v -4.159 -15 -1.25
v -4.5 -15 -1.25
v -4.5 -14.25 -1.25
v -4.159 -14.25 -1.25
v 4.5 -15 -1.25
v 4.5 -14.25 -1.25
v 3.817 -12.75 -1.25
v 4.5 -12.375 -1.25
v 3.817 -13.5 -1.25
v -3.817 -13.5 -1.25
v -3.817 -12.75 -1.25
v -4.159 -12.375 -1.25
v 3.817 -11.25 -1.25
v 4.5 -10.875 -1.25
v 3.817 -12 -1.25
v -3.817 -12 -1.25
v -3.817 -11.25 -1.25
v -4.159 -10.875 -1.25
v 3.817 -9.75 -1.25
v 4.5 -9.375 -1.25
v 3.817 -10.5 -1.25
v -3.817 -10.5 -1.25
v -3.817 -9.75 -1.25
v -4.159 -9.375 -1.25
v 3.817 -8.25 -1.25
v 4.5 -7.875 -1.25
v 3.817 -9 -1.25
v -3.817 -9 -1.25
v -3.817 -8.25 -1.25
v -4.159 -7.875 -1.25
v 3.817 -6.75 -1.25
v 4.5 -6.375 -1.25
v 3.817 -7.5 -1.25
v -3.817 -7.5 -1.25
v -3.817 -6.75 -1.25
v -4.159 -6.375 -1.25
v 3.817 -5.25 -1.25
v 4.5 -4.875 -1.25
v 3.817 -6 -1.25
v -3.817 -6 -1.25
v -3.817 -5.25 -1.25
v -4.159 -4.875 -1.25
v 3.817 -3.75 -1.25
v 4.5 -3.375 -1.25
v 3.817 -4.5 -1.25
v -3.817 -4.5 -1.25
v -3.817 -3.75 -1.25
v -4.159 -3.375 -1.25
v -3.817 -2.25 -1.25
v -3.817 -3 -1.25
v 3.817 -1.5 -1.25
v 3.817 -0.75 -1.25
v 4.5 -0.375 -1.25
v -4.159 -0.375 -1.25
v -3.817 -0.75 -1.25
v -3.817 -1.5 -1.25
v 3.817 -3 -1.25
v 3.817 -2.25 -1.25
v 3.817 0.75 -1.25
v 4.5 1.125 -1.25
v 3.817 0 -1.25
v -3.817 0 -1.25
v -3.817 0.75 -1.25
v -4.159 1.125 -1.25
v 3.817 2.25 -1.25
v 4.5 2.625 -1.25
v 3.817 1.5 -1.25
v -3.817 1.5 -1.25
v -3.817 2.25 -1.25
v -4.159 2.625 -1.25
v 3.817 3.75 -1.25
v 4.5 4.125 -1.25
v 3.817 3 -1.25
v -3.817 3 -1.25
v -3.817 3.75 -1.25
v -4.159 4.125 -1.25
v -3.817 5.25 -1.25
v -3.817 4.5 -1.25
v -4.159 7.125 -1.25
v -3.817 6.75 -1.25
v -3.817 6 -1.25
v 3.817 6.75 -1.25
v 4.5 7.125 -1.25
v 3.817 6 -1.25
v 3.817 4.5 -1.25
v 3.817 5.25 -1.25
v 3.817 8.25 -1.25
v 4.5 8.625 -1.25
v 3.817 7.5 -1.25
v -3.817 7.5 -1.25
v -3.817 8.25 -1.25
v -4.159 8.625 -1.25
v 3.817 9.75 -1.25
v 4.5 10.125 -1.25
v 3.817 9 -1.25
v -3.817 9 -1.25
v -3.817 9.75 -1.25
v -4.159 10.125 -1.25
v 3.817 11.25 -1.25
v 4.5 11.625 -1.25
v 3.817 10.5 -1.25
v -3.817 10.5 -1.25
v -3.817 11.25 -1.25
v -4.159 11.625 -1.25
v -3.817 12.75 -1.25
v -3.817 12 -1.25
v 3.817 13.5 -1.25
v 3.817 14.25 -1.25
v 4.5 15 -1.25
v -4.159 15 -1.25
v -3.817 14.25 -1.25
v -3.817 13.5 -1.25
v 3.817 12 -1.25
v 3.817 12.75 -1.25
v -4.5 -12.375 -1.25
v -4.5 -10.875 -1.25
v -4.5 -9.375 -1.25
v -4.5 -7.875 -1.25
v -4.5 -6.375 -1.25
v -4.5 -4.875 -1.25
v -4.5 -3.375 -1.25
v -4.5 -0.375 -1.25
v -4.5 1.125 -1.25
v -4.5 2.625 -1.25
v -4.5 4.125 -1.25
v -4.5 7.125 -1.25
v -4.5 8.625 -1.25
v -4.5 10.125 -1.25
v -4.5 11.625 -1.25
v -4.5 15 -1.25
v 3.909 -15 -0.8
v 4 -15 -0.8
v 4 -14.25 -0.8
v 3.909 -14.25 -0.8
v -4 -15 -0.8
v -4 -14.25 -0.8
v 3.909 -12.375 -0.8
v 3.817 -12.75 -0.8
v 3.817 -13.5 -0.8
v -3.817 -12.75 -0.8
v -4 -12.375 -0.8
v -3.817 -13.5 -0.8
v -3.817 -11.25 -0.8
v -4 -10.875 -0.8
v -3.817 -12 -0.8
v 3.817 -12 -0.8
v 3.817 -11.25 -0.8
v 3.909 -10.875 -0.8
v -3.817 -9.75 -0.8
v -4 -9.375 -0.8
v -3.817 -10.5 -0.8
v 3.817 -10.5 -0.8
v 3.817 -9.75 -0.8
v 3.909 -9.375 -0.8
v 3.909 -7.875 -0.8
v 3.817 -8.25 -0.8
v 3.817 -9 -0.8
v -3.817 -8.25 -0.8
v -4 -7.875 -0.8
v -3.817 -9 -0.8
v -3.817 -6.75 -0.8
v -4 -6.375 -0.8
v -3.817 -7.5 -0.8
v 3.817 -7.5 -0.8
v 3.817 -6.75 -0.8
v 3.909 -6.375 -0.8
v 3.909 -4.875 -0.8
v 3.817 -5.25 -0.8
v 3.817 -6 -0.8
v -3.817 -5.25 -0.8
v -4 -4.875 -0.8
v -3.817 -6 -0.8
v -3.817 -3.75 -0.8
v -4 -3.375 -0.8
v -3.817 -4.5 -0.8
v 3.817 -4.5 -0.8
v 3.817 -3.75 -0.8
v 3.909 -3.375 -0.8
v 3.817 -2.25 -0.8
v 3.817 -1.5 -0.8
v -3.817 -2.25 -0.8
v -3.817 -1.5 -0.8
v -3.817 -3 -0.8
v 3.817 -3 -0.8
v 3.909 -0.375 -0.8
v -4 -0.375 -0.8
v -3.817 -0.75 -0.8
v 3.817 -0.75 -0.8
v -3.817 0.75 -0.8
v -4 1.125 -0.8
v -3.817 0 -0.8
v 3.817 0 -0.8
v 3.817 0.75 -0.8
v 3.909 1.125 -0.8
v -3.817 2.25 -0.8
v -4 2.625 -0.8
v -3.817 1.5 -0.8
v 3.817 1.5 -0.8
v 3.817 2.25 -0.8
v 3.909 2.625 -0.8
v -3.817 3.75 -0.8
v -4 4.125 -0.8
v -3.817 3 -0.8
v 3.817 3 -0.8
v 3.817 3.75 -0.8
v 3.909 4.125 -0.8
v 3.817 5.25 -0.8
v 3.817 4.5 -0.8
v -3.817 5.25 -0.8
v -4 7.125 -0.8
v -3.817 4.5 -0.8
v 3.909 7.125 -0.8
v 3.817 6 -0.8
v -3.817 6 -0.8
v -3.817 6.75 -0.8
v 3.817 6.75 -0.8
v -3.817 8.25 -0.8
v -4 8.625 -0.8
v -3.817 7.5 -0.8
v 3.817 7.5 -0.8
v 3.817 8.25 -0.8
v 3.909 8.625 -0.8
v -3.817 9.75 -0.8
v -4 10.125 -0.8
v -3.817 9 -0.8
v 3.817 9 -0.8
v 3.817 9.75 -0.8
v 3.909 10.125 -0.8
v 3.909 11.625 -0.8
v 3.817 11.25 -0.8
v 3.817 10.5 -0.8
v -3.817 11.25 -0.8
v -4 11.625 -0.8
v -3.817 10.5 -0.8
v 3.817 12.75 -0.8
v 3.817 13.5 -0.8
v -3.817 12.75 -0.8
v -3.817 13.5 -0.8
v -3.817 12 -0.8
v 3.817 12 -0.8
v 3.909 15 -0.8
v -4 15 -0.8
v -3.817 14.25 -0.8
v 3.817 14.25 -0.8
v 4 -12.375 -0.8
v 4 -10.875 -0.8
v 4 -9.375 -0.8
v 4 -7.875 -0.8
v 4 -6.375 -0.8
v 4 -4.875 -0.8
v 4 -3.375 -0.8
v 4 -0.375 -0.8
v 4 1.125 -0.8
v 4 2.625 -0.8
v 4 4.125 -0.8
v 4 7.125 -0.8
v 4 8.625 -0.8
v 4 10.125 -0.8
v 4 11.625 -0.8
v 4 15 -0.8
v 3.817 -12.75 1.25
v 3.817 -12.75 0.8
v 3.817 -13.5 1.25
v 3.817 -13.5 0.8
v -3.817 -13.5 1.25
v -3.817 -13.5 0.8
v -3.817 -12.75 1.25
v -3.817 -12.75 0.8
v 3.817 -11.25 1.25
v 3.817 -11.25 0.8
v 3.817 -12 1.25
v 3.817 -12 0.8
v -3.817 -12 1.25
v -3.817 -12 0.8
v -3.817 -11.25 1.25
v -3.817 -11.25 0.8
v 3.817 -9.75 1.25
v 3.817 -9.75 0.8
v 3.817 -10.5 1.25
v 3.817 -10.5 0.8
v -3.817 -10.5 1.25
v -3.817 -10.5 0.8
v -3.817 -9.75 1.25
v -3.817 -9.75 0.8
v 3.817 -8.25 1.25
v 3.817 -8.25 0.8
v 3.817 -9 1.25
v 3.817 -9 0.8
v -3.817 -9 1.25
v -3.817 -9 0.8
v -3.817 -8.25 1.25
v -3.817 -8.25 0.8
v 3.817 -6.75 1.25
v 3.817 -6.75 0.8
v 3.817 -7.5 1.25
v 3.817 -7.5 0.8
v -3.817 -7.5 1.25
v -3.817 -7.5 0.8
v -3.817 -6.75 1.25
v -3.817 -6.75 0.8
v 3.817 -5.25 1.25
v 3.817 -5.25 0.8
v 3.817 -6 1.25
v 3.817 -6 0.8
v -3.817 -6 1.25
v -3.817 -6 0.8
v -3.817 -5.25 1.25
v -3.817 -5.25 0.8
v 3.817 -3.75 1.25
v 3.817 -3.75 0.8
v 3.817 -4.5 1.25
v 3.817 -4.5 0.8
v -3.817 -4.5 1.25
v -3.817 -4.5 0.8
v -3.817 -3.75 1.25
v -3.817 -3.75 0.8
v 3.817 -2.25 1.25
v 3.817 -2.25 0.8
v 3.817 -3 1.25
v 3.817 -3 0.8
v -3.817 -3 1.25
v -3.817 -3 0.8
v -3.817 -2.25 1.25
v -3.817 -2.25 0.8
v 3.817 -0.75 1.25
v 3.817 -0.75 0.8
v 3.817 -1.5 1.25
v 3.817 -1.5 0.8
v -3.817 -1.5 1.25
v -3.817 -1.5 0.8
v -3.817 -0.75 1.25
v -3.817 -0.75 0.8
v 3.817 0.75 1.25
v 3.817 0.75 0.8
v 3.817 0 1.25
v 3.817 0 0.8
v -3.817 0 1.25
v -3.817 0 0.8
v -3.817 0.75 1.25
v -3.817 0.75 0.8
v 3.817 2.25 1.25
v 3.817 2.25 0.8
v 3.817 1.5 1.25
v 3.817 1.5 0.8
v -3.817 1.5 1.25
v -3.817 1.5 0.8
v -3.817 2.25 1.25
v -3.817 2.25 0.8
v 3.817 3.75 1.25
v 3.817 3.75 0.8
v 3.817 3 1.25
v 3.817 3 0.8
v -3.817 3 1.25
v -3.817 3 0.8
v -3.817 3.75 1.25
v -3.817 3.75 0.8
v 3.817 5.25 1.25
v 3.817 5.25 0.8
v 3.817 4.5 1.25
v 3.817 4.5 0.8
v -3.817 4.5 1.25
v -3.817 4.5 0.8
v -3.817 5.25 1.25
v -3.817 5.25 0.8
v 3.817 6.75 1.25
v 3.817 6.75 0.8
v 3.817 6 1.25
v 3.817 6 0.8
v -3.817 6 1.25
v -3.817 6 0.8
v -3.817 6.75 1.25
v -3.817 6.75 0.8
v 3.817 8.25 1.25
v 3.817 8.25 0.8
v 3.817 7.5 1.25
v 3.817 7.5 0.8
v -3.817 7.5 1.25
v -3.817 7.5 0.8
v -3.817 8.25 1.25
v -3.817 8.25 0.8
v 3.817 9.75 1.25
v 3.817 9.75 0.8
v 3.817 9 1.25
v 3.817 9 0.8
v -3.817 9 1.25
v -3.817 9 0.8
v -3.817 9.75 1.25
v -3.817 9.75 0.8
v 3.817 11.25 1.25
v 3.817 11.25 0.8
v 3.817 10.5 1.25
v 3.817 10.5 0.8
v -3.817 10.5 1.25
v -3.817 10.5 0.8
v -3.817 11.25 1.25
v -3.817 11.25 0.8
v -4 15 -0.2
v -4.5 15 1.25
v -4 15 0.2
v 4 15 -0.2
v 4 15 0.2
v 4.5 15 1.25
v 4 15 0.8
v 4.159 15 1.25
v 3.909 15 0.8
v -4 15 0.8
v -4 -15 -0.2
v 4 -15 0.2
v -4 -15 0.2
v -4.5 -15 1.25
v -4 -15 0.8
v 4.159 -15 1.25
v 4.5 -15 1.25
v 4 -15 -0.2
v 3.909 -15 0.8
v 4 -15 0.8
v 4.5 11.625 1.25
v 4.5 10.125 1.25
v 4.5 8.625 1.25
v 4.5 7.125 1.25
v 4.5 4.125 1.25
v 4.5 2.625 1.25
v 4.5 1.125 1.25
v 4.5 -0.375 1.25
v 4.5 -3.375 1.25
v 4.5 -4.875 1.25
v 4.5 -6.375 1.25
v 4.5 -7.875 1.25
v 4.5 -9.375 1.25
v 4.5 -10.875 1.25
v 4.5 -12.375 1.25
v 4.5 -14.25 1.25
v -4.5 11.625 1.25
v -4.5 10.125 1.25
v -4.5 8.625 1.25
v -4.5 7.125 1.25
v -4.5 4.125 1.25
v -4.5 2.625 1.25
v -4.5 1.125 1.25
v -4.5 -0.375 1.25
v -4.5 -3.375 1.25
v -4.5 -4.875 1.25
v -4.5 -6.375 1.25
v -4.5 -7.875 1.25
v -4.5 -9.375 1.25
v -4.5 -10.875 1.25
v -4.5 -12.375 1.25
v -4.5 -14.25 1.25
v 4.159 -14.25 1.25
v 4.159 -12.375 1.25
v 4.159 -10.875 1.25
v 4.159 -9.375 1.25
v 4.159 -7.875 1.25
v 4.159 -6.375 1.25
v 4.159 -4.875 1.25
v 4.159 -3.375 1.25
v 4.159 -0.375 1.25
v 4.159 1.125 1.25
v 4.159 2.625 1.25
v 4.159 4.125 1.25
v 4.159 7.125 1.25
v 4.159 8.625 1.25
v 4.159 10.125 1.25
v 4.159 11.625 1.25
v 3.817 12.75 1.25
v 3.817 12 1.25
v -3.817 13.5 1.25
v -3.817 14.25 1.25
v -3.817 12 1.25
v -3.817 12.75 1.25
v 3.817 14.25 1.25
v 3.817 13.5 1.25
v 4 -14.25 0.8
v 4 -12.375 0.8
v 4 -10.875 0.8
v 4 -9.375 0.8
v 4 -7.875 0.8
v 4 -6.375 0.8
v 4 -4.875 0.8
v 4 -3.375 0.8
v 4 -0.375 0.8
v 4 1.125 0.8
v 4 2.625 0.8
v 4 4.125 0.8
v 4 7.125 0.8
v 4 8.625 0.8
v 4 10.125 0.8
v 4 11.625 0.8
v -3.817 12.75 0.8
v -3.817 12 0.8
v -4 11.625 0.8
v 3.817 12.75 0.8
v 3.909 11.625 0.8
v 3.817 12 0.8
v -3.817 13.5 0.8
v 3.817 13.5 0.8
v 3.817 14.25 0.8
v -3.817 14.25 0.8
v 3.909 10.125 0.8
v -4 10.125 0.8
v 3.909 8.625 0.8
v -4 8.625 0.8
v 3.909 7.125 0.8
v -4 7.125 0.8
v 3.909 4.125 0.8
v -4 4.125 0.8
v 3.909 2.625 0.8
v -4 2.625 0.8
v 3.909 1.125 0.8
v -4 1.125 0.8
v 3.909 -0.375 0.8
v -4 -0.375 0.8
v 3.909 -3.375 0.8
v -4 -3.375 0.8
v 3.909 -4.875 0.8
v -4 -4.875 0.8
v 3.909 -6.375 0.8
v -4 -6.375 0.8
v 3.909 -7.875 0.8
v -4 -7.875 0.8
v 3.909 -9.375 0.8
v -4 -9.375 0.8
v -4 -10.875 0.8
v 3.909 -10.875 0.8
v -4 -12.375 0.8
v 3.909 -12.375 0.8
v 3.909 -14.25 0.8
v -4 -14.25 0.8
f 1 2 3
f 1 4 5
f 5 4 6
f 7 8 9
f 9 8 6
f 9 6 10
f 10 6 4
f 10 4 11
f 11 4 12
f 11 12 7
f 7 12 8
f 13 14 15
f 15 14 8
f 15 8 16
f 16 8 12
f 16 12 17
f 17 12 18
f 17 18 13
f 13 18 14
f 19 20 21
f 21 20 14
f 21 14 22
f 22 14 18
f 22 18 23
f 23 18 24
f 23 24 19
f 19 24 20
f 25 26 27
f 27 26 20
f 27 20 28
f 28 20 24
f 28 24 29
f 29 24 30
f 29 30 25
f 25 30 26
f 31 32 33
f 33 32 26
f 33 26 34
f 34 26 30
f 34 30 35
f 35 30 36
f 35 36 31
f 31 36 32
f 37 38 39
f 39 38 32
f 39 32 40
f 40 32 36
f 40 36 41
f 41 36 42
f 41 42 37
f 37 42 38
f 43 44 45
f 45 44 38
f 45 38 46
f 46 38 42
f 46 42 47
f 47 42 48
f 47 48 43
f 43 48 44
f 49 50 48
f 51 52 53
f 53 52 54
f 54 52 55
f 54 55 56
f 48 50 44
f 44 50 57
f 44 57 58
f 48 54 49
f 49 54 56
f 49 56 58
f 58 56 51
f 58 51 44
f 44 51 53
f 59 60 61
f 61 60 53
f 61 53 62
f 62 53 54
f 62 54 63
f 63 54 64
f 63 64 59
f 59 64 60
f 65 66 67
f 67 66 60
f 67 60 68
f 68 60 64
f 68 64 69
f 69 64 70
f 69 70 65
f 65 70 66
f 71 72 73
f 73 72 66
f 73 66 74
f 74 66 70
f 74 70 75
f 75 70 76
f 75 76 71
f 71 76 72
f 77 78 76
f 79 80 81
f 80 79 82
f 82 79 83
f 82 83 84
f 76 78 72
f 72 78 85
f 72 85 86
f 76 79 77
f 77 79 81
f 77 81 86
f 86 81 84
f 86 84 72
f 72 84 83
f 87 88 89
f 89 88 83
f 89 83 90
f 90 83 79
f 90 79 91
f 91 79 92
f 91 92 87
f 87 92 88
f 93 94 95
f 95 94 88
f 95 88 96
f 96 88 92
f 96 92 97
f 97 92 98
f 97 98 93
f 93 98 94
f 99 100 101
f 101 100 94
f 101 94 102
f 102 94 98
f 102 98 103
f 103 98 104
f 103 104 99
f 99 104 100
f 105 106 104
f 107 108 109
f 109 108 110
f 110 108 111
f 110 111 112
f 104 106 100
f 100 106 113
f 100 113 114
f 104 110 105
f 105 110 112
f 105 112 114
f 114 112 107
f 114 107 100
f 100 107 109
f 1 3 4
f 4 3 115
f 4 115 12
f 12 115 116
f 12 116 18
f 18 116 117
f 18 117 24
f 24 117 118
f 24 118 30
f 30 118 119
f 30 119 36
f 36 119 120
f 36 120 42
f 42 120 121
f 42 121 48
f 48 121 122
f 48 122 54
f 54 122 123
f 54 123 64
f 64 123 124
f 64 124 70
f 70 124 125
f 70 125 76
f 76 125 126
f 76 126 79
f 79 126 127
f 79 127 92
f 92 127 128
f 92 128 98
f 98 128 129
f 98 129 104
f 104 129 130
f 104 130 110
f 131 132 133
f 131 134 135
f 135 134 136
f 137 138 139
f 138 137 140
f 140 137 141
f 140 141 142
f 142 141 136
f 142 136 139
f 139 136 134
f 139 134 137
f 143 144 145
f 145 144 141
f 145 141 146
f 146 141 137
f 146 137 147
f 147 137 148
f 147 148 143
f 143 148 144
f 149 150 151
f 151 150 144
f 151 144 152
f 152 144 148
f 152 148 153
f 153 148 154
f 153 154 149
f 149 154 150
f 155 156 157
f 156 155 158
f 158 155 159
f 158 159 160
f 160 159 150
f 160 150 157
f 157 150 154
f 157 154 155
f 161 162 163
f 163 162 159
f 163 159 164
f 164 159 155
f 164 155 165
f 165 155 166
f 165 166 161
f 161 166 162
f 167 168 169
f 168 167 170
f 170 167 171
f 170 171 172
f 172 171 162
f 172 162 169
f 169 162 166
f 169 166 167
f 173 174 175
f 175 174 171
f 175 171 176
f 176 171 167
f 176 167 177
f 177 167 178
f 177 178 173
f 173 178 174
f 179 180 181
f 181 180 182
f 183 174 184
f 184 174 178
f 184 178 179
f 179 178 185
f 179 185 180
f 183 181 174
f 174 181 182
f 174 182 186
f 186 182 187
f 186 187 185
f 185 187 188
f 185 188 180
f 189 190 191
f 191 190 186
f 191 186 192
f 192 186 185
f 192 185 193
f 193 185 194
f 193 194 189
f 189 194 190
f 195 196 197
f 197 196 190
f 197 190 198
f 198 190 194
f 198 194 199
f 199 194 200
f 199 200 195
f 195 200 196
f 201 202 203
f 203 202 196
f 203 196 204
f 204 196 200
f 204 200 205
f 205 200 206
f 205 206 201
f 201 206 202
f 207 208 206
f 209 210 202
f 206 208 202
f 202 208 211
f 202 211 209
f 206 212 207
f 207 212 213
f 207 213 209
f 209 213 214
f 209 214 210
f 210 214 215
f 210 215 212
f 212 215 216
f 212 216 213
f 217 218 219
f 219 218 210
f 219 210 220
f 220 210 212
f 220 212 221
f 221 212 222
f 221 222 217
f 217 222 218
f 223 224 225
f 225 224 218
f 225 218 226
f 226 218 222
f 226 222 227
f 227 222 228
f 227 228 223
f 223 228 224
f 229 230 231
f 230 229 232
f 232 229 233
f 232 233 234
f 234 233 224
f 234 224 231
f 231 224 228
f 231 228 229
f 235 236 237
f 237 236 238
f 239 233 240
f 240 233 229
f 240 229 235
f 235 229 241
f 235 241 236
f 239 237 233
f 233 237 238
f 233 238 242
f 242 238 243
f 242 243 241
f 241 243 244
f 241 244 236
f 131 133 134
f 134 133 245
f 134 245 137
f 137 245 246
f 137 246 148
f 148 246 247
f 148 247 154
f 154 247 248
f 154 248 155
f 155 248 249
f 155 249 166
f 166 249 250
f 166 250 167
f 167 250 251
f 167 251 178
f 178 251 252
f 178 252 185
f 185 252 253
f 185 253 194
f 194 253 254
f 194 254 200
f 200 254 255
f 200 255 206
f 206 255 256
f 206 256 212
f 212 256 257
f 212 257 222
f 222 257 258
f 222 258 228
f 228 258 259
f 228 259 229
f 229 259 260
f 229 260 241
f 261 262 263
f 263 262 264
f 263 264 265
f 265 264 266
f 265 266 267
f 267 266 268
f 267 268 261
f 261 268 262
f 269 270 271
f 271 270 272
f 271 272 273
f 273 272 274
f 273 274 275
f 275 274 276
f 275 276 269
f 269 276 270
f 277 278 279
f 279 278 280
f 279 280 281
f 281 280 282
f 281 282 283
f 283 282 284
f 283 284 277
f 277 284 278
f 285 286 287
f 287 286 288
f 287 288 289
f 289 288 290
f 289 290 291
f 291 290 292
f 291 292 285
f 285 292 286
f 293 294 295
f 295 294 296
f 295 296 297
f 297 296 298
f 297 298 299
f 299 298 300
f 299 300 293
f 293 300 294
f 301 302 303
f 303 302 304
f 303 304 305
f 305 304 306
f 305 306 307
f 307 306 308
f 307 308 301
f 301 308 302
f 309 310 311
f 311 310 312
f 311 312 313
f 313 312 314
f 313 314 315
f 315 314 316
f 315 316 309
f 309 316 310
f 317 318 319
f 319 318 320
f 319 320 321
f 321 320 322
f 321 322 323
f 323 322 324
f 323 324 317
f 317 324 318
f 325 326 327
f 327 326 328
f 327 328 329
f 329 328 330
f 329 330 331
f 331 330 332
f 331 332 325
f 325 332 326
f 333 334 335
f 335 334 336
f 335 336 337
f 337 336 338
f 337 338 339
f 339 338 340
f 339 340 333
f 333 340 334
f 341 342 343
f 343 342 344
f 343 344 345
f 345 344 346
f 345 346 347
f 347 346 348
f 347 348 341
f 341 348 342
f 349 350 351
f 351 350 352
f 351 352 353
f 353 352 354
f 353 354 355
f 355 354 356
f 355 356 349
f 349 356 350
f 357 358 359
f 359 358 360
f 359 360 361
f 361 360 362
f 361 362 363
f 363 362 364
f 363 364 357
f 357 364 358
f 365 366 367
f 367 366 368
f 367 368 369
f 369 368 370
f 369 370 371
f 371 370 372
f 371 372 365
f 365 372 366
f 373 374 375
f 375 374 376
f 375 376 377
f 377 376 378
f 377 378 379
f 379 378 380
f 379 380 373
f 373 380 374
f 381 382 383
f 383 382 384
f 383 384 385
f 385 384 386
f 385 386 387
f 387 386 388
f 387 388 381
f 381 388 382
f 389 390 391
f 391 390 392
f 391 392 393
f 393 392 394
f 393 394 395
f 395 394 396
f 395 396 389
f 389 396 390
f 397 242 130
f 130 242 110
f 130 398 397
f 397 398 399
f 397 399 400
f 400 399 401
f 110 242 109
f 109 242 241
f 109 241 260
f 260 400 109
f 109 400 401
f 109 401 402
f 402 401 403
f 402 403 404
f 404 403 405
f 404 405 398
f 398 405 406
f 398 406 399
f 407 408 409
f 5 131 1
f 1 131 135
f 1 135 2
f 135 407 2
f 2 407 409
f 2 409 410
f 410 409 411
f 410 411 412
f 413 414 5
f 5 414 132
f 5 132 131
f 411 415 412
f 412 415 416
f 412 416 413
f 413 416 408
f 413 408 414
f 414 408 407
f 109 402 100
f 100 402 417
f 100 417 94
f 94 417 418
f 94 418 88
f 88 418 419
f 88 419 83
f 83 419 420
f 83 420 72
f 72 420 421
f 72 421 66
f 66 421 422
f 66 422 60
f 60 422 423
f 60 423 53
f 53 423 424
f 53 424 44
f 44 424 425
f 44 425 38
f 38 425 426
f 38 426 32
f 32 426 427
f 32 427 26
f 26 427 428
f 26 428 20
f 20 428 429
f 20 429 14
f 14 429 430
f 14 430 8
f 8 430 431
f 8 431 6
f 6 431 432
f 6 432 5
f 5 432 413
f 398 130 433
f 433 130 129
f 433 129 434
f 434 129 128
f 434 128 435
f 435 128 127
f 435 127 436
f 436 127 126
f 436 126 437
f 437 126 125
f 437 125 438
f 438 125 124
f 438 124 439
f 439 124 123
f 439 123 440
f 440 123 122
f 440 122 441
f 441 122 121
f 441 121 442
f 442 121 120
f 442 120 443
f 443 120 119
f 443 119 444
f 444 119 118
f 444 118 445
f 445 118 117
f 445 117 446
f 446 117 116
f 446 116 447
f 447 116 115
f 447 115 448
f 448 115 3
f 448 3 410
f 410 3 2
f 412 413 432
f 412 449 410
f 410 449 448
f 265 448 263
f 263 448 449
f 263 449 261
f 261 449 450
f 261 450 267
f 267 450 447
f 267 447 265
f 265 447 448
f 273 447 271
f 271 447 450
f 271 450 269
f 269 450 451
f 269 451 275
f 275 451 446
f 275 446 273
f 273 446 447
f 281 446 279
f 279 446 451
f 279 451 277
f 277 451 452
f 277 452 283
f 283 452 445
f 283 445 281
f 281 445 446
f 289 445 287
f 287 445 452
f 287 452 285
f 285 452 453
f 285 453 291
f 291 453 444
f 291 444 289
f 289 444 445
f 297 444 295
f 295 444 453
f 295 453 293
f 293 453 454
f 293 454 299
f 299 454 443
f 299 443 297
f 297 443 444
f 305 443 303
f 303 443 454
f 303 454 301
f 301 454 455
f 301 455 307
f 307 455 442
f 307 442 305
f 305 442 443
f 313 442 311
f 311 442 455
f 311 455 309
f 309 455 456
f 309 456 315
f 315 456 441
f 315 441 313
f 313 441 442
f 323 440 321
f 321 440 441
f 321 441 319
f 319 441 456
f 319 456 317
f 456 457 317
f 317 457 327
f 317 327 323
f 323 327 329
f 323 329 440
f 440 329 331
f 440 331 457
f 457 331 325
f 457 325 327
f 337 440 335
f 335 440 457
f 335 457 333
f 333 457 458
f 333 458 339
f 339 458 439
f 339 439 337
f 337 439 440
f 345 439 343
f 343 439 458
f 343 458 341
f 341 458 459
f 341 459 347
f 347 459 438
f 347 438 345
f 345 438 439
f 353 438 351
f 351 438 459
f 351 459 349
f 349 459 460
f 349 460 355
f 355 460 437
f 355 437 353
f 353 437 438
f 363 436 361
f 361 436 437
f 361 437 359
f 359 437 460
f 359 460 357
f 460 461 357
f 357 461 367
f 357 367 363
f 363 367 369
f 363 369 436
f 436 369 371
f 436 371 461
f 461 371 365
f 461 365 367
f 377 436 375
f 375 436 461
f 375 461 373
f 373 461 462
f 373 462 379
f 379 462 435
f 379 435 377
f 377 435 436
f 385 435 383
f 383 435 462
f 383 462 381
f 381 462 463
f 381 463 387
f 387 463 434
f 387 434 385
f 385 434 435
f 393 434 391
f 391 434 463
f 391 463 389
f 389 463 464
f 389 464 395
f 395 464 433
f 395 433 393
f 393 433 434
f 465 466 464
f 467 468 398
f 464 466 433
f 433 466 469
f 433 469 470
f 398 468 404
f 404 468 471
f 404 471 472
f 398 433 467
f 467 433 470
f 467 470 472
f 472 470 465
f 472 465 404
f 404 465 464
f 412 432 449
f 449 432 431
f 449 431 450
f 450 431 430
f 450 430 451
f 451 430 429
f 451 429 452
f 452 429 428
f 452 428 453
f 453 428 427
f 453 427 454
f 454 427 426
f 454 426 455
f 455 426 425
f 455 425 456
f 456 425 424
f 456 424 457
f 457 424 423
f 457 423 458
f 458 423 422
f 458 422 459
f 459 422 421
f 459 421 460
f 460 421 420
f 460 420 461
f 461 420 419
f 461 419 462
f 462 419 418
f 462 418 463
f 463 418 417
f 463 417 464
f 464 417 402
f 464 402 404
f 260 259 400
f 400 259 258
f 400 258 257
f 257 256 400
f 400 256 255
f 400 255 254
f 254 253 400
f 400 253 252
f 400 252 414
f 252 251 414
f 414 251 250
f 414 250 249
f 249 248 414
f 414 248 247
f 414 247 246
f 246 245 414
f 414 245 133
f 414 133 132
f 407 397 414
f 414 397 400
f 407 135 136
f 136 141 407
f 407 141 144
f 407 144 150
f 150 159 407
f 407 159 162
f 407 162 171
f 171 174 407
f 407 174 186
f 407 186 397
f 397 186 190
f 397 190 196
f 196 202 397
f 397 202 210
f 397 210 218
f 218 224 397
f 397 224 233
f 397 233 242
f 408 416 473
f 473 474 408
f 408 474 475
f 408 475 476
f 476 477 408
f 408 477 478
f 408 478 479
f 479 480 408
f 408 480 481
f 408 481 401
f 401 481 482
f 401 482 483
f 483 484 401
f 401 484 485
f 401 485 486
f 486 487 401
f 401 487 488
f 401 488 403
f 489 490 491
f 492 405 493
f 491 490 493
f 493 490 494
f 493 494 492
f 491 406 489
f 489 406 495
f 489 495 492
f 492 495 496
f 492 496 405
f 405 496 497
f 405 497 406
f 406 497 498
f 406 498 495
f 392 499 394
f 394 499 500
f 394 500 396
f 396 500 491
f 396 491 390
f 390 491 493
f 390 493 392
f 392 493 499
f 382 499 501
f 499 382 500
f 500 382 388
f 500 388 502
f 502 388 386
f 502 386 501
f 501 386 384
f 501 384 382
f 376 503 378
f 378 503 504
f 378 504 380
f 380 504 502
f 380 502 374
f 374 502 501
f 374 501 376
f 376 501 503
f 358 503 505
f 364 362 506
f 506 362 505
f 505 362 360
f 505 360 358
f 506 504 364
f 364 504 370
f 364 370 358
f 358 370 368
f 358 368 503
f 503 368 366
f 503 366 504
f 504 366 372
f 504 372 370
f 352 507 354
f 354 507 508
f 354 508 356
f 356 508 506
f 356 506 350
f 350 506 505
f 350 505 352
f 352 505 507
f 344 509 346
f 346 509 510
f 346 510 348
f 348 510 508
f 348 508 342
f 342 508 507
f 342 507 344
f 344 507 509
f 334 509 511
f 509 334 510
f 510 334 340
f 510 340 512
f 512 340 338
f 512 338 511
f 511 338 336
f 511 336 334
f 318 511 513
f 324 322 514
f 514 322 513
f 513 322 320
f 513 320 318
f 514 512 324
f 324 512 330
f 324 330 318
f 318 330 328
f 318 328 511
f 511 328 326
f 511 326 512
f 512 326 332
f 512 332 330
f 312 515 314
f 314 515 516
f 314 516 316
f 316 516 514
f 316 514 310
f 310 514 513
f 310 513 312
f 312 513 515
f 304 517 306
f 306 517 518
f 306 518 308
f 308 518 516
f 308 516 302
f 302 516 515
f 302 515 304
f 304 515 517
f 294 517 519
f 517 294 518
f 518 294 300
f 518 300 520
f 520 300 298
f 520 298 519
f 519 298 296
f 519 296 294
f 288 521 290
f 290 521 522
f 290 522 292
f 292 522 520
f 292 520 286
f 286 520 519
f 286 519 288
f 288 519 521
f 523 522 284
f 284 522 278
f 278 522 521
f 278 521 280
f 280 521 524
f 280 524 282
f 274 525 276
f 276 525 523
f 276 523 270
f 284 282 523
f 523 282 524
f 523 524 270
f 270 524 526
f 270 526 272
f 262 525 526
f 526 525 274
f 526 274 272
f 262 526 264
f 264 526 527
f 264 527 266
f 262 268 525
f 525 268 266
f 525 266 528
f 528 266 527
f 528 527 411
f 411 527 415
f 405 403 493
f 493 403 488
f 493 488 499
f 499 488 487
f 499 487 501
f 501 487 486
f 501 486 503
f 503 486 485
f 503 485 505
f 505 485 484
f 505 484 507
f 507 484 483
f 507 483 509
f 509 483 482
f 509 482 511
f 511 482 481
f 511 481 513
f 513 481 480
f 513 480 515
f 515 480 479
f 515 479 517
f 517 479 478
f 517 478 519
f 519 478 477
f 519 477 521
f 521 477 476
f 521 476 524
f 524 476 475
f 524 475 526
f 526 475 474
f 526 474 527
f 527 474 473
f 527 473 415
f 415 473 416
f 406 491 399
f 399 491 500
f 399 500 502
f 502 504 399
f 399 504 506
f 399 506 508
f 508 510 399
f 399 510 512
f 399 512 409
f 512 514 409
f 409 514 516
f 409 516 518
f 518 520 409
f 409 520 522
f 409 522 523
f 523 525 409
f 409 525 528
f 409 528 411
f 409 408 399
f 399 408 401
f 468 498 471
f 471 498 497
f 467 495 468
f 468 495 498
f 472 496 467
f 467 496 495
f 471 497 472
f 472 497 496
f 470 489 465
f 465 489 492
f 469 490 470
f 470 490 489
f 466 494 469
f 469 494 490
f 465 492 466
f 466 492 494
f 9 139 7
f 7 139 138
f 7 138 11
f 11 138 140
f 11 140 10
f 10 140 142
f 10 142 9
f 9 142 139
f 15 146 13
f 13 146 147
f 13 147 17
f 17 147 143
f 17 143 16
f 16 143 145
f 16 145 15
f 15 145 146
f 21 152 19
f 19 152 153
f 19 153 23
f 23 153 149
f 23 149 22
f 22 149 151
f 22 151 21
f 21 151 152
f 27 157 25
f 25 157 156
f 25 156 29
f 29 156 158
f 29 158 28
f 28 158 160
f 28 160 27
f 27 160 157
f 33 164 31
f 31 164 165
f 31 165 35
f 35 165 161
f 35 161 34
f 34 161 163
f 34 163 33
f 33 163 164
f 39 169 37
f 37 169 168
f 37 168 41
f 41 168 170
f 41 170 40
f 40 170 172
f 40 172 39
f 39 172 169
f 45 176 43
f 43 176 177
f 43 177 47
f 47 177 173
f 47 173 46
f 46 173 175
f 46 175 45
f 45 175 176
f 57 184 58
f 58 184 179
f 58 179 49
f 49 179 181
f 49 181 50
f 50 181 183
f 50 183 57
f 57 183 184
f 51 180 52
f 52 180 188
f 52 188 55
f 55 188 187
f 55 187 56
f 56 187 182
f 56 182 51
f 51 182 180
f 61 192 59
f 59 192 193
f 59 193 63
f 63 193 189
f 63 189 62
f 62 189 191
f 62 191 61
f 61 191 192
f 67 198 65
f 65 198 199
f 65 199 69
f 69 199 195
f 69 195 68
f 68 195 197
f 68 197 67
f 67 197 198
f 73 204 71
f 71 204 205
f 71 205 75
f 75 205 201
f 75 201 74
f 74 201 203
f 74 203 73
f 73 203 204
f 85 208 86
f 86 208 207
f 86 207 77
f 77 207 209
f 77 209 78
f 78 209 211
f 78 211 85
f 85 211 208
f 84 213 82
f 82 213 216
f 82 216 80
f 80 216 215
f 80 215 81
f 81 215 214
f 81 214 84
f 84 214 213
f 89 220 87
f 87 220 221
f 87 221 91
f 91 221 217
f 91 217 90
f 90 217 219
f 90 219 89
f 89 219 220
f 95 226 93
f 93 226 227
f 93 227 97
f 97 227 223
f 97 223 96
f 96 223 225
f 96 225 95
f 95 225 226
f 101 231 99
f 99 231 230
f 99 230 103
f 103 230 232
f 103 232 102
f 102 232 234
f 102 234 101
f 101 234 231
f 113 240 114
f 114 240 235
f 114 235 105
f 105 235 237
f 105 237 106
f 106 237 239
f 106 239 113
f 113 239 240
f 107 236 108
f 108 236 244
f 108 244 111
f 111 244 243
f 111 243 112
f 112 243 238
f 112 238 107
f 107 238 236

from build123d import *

# Parameters (mm, degrees)
SKETCH1_W                = 9
SKETCH1_H                = 2.5
BOSS_EXTRUDE1_DEPTH      = 15
CUT_EXTRUDE1_START       = -31
SKETCH2_W                = 8
SKETCH2_H                = 0.6
CUT_EXTRUDE1_DEPTH       = 32
SKETCH3_W                = 7.634272068
SKETCH3_H                = 0.75
CUT_EXTRUDE2_DEPTH       = 0.45
LPATTERN1_COUNT          = 19
LPATTERN1_PITCH          = 1.5
MIRROR2_COPY_1_SKETCH_W  = 7.634272068
MIRROR2_COPY_1_SKETCH_H  = 0.75
MIRROR2_COPY_1_DEPTH     = 0.45
MIRROR2_COPY_2_SKETCH_W  = 7.634272068
MIRROR2_COPY_2_SKETCH_H  = 0.75
MIRROR2_COPY_2_DEPTH     = 0.45
MIRROR2_COPY_3_SKETCH_W  = 7.634272068
MIRROR2_COPY_3_SKETCH_H  = 0.75
MIRROR2_COPY_3_DEPTH     = 0.45
MIRROR2_COPY_4_SKETCH_W  = 7.634272068
MIRROR2_COPY_4_SKETCH_H  = 0.75
MIRROR2_COPY_4_DEPTH     = 0.45
MIRROR2_COPY_5_SKETCH_W  = 7.634272068
MIRROR2_COPY_5_SKETCH_H  = 0.75
MIRROR2_COPY_5_DEPTH     = 0.45
MIRROR2_COPY_6_SKETCH_W  = 7.634272068
MIRROR2_COPY_6_SKETCH_H  = 0.75
MIRROR2_COPY_6_DEPTH     = 0.45
MIRROR2_COPY_7_SKETCH_W  = 7.634272068
MIRROR2_COPY_7_SKETCH_H  = 0.75
MIRROR2_COPY_7_DEPTH     = 0.45
MIRROR2_COPY_8_SKETCH_W  = 7.634272068
MIRROR2_COPY_8_SKETCH_H  = 0.75
MIRROR2_COPY_8_DEPTH     = 0.45
MIRROR2_COPY_9_SKETCH_W  = 7.634272068
MIRROR2_COPY_9_SKETCH_H  = 0.75
MIRROR2_COPY_9_DEPTH     = 0.45
MIRROR2_COPY_10_SKETCH_W = 7.634272068
MIRROR2_COPY_10_SKETCH_H = 0.75
MIRROR2_COPY_10_DEPTH    = 0.45
MIRROR2_COPY_11_SKETCH_W = 7.634272068
MIRROR2_COPY_11_SKETCH_H = 0.75
MIRROR2_COPY_11_DEPTH    = 0.45
MIRROR2_COPY_12_SKETCH_W = 7.634272068
MIRROR2_COPY_12_SKETCH_H = 0.75
MIRROR2_COPY_12_DEPTH    = 0.45
MIRROR2_COPY_13_SKETCH_W = 7.634272068
MIRROR2_COPY_13_SKETCH_H = 0.75
MIRROR2_COPY_13_DEPTH    = 0.45
MIRROR2_COPY_14_SKETCH_W = 7.634272068
MIRROR2_COPY_14_SKETCH_H = 0.75
MIRROR2_COPY_14_DEPTH    = 0.45
MIRROR2_COPY_15_SKETCH_W = 7.634272068
MIRROR2_COPY_15_SKETCH_H = 0.75
MIRROR2_COPY_15_DEPTH    = 0.45
MIRROR2_COPY_16_SKETCH_W = 7.634272068
MIRROR2_COPY_16_SKETCH_H = 0.75
MIRROR2_COPY_16_DEPTH    = 0.45
MIRROR2_COPY_17_SKETCH_W = 7.634272068
MIRROR2_COPY_17_SKETCH_H = 0.75
MIRROR2_COPY_17_DEPTH    = 0.45
MIRROR2_COPY_18_SKETCH_W = 7.634272068
MIRROR2_COPY_18_SKETCH_H = 0.75
MIRROR2_COPY_18_DEPTH    = 0.45


with BuildPart() as part:
    # Sketch1 → Boss-Extrude1 (new body, symmetric)
    with BuildSketch(Plane(origin=(0, 0, 0), x_dir=(1, 0, 0), z_dir=(0, 1, 0))):
        Rectangle(SKETCH1_W, SKETCH1_H)
    extrude(amount=BOSS_EXTRUDE1_DEPTH, both=True)

    # Sketch2 → Cut-Extrude1 (cut)
    with BuildSketch(Plane(origin=(0, 15, 0), x_dir=(1, 0, 0), z_dir=(0, 1, 0)).offset(CUT_EXTRUDE1_START)):
        with Locations((0, 0.5)):
            Rectangle(SKETCH2_W, SKETCH2_H)
    cut_extrude1 = extrude(amount=CUT_EXTRUDE1_DEPTH, mode=Mode.SUBTRACT)

    # Mirror1: Cut-Extrude1 across plane
    add(cut_extrude1.mirror(Plane.XY), mode=Mode.SUBTRACT)

    # Sketch3 → Cut-Extrude2 (cut)
    with BuildSketch(Plane.XY.offset(1.25)):
        with Locations((0, 13.875)):
            Rectangle(SKETCH3_W, SKETCH3_H)
    cut_extrude2 = extrude(amount=-CUT_EXTRUDE2_DEPTH, mode=Mode.SUBTRACT)

    # LPattern1: Cut-Extrude2 ×19
    with Locations(*[(0, -i * LPATTERN1_PITCH, 0) for i in range(1, LPATTERN1_COUNT)]):
        add(cut_extrude2, mode=Mode.SUBTRACT)

    # Mirror2: Cut-Extrude2 across plane
    add(cut_extrude2.mirror(Plane.XY), mode=Mode.SUBTRACT)

    # Mirror2 copy 1 sketch → Mirror2 copy 1 (cut)
    with BuildSketch(Plane(origin=(0, -1.5, -1.25), x_dir=(1, 0, 0), z_dir=(0, 0, -1))):
        with Locations((0, -13.875)):
            Rectangle(MIRROR2_COPY_1_SKETCH_W, MIRROR2_COPY_1_SKETCH_H)
    extrude(amount=-MIRROR2_COPY_1_DEPTH, mode=Mode.SUBTRACT)

    # Mirror2 copy 2 sketch → Mirror2 copy 2 (cut)
    with BuildSketch(Plane(origin=(0, -3, -1.25), x_dir=(1, 0, 0), z_dir=(0, 0, -1))):
        with Locations((0, -13.875)):
            Rectangle(MIRROR2_COPY_2_SKETCH_W, MIRROR2_COPY_2_SKETCH_H)
    extrude(amount=-MIRROR2_COPY_2_DEPTH, mode=Mode.SUBTRACT)

    # Mirror2 copy 3 sketch → Mirror2 copy 3 (cut)
    with BuildSketch(Plane(origin=(0, -4.5, -1.25), x_dir=(1, 0, 0), z_dir=(0, 0, -1))):
        with Locations((0, -13.875)):
            Rectangle(MIRROR2_COPY_3_SKETCH_W, MIRROR2_COPY_3_SKETCH_H)
    extrude(amount=-MIRROR2_COPY_3_DEPTH, mode=Mode.SUBTRACT)

    # Mirror2 copy 4 sketch → Mirror2 copy 4 (cut)
    with BuildSketch(Plane(origin=(0, -6, -1.25), x_dir=(1, 0, 0), z_dir=(0, 0, -1))):
        with Locations((0, -13.875)):
            Rectangle(MIRROR2_COPY_4_SKETCH_W, MIRROR2_COPY_4_SKETCH_H)
    extrude(amount=-MIRROR2_COPY_4_DEPTH, mode=Mode.SUBTRACT)

    # Mirror2 copy 5 sketch → Mirror2 copy 5 (cut)
    with BuildSketch(Plane(origin=(0, -7.5, -1.25), x_dir=(1, 0, 0), z_dir=(0, 0, -1))):
        with Locations((0, -13.875)):
            Rectangle(MIRROR2_COPY_5_SKETCH_W, MIRROR2_COPY_5_SKETCH_H)
    extrude(amount=-MIRROR2_COPY_5_DEPTH, mode=Mode.SUBTRACT)

    # Mirror2 copy 6 sketch → Mirror2 copy 6 (cut)
    with BuildSketch(Plane(origin=(0, -9, -1.25), x_dir=(1, 0, 0), z_dir=(0, 0, -1))):
        with Locations((0, -13.875)):
            Rectangle(MIRROR2_COPY_6_SKETCH_W, MIRROR2_COPY_6_SKETCH_H)
    extrude(amount=-MIRROR2_COPY_6_DEPTH, mode=Mode.SUBTRACT)

    # Mirror2 copy 7 sketch → Mirror2 copy 7 (cut)
    with BuildSketch(Plane(origin=(0, -10.5, -1.25), x_dir=(1, 0, 0), z_dir=(0, 0, -1))):
        with Locations((0, -13.875)):
            Rectangle(MIRROR2_COPY_7_SKETCH_W, MIRROR2_COPY_7_SKETCH_H)
    extrude(amount=-MIRROR2_COPY_7_DEPTH, mode=Mode.SUBTRACT)

    # Mirror2 copy 8 sketch → Mirror2 copy 8 (cut)
    with BuildSketch(Plane(origin=(0, -12, -1.25), x_dir=(1, 0, 0), z_dir=(0, 0, -1))):
        with Locations((0, -13.875)):
            Rectangle(MIRROR2_COPY_8_SKETCH_W, MIRROR2_COPY_8_SKETCH_H)
    extrude(amount=-MIRROR2_COPY_8_DEPTH, mode=Mode.SUBTRACT)

    # Mirror2 copy 9 sketch → Mirror2 copy 9 (cut)
    with BuildSketch(Plane(origin=(0, -13.5, -1.25), x_dir=(1, 0, 0), z_dir=(0, 0, -1))):
        with Locations((0, -13.875)):
            Rectangle(MIRROR2_COPY_9_SKETCH_W, MIRROR2_COPY_9_SKETCH_H)
    extrude(amount=-MIRROR2_COPY_9_DEPTH, mode=Mode.SUBTRACT)

    # Mirror2 copy 10 sketch → Mirror2 copy 10 (cut)
    with BuildSketch(Plane(origin=(0, -15, -1.25), x_dir=(1, 0, 0), z_dir=(0, 0, -1))):
        with Locations((0, -13.875)):
            Rectangle(MIRROR2_COPY_10_SKETCH_W, MIRROR2_COPY_10_SKETCH_H)
    extrude(amount=-MIRROR2_COPY_10_DEPTH, mode=Mode.SUBTRACT)

    # Mirror2 copy 11 sketch → Mirror2 copy 11 (cut)
    with BuildSketch(Plane(origin=(0, -16.5, -1.25), x_dir=(1, 0, 0), z_dir=(0, 0, -1))):
        with Locations((0, -13.875)):
            Rectangle(MIRROR2_COPY_11_SKETCH_W, MIRROR2_COPY_11_SKETCH_H)
    extrude(amount=-MIRROR2_COPY_11_DEPTH, mode=Mode.SUBTRACT)

    # Mirror2 copy 12 sketch → Mirror2 copy 12 (cut)
    with BuildSketch(Plane(origin=(0, -18, -1.25), x_dir=(1, 0, 0), z_dir=(0, 0, -1))):
        with Locations((0, -13.875)):
            Rectangle(MIRROR2_COPY_12_SKETCH_W, MIRROR2_COPY_12_SKETCH_H)
    extrude(amount=-MIRROR2_COPY_12_DEPTH, mode=Mode.SUBTRACT)

    # Mirror2 copy 13 sketch → Mirror2 copy 13 (cut)
    with BuildSketch(Plane(origin=(0, -19.5, -1.25), x_dir=(1, 0, 0), z_dir=(0, 0, -1))):
        with Locations((0, -13.875)):
            Rectangle(MIRROR2_COPY_13_SKETCH_W, MIRROR2_COPY_13_SKETCH_H)
    extrude(amount=-MIRROR2_COPY_13_DEPTH, mode=Mode.SUBTRACT)

    # Mirror2 copy 14 sketch → Mirror2 copy 14 (cut)
    with BuildSketch(Plane(origin=(0, -21, -1.25), x_dir=(1, 0, 0), z_dir=(0, 0, -1))):
        with Locations((0, -13.875)):
            Rectangle(MIRROR2_COPY_14_SKETCH_W, MIRROR2_COPY_14_SKETCH_H)
    extrude(amount=-MIRROR2_COPY_14_DEPTH, mode=Mode.SUBTRACT)

    # Mirror2 copy 15 sketch → Mirror2 copy 15 (cut)
    with BuildSketch(Plane(origin=(0, -22.5, -1.25), x_dir=(1, 0, 0), z_dir=(0, 0, -1))):
        with Locations((0, -13.875)):
            Rectangle(MIRROR2_COPY_15_SKETCH_W, MIRROR2_COPY_15_SKETCH_H)
    extrude(amount=-MIRROR2_COPY_15_DEPTH, mode=Mode.SUBTRACT)

    # Mirror2 copy 16 sketch → Mirror2 copy 16 (cut)
    with BuildSketch(Plane(origin=(0, -24, -1.25), x_dir=(1, 0, 0), z_dir=(0, 0, -1))):
        with Locations((0, -13.875)):
            Rectangle(MIRROR2_COPY_16_SKETCH_W, MIRROR2_COPY_16_SKETCH_H)
    extrude(amount=-MIRROR2_COPY_16_DEPTH, mode=Mode.SUBTRACT)

    # Mirror2 copy 17 sketch → Mirror2 copy 17 (cut)
    with BuildSketch(Plane(origin=(0, -25.5, -1.25), x_dir=(1, 0, 0), z_dir=(0, 0, -1))):
        with Locations((0, -13.875)):
            Rectangle(MIRROR2_COPY_17_SKETCH_W, MIRROR2_COPY_17_SKETCH_H)
    extrude(amount=-MIRROR2_COPY_17_DEPTH, mode=Mode.SUBTRACT)

    # Mirror2 copy 18 sketch → Mirror2 copy 18 (cut)
    with BuildSketch(Plane(origin=(0, -27, -1.25), x_dir=(1, 0, 0), z_dir=(0, 0, -1))):
        with Locations((0, -13.875)):
            Rectangle(MIRROR2_COPY_18_SKETCH_W, MIRROR2_COPY_18_SKETCH_H)
    extrude(amount=-MIRROR2_COPY_18_DEPTH, mode=Mode.SUBTRACT)


solid = part.part
